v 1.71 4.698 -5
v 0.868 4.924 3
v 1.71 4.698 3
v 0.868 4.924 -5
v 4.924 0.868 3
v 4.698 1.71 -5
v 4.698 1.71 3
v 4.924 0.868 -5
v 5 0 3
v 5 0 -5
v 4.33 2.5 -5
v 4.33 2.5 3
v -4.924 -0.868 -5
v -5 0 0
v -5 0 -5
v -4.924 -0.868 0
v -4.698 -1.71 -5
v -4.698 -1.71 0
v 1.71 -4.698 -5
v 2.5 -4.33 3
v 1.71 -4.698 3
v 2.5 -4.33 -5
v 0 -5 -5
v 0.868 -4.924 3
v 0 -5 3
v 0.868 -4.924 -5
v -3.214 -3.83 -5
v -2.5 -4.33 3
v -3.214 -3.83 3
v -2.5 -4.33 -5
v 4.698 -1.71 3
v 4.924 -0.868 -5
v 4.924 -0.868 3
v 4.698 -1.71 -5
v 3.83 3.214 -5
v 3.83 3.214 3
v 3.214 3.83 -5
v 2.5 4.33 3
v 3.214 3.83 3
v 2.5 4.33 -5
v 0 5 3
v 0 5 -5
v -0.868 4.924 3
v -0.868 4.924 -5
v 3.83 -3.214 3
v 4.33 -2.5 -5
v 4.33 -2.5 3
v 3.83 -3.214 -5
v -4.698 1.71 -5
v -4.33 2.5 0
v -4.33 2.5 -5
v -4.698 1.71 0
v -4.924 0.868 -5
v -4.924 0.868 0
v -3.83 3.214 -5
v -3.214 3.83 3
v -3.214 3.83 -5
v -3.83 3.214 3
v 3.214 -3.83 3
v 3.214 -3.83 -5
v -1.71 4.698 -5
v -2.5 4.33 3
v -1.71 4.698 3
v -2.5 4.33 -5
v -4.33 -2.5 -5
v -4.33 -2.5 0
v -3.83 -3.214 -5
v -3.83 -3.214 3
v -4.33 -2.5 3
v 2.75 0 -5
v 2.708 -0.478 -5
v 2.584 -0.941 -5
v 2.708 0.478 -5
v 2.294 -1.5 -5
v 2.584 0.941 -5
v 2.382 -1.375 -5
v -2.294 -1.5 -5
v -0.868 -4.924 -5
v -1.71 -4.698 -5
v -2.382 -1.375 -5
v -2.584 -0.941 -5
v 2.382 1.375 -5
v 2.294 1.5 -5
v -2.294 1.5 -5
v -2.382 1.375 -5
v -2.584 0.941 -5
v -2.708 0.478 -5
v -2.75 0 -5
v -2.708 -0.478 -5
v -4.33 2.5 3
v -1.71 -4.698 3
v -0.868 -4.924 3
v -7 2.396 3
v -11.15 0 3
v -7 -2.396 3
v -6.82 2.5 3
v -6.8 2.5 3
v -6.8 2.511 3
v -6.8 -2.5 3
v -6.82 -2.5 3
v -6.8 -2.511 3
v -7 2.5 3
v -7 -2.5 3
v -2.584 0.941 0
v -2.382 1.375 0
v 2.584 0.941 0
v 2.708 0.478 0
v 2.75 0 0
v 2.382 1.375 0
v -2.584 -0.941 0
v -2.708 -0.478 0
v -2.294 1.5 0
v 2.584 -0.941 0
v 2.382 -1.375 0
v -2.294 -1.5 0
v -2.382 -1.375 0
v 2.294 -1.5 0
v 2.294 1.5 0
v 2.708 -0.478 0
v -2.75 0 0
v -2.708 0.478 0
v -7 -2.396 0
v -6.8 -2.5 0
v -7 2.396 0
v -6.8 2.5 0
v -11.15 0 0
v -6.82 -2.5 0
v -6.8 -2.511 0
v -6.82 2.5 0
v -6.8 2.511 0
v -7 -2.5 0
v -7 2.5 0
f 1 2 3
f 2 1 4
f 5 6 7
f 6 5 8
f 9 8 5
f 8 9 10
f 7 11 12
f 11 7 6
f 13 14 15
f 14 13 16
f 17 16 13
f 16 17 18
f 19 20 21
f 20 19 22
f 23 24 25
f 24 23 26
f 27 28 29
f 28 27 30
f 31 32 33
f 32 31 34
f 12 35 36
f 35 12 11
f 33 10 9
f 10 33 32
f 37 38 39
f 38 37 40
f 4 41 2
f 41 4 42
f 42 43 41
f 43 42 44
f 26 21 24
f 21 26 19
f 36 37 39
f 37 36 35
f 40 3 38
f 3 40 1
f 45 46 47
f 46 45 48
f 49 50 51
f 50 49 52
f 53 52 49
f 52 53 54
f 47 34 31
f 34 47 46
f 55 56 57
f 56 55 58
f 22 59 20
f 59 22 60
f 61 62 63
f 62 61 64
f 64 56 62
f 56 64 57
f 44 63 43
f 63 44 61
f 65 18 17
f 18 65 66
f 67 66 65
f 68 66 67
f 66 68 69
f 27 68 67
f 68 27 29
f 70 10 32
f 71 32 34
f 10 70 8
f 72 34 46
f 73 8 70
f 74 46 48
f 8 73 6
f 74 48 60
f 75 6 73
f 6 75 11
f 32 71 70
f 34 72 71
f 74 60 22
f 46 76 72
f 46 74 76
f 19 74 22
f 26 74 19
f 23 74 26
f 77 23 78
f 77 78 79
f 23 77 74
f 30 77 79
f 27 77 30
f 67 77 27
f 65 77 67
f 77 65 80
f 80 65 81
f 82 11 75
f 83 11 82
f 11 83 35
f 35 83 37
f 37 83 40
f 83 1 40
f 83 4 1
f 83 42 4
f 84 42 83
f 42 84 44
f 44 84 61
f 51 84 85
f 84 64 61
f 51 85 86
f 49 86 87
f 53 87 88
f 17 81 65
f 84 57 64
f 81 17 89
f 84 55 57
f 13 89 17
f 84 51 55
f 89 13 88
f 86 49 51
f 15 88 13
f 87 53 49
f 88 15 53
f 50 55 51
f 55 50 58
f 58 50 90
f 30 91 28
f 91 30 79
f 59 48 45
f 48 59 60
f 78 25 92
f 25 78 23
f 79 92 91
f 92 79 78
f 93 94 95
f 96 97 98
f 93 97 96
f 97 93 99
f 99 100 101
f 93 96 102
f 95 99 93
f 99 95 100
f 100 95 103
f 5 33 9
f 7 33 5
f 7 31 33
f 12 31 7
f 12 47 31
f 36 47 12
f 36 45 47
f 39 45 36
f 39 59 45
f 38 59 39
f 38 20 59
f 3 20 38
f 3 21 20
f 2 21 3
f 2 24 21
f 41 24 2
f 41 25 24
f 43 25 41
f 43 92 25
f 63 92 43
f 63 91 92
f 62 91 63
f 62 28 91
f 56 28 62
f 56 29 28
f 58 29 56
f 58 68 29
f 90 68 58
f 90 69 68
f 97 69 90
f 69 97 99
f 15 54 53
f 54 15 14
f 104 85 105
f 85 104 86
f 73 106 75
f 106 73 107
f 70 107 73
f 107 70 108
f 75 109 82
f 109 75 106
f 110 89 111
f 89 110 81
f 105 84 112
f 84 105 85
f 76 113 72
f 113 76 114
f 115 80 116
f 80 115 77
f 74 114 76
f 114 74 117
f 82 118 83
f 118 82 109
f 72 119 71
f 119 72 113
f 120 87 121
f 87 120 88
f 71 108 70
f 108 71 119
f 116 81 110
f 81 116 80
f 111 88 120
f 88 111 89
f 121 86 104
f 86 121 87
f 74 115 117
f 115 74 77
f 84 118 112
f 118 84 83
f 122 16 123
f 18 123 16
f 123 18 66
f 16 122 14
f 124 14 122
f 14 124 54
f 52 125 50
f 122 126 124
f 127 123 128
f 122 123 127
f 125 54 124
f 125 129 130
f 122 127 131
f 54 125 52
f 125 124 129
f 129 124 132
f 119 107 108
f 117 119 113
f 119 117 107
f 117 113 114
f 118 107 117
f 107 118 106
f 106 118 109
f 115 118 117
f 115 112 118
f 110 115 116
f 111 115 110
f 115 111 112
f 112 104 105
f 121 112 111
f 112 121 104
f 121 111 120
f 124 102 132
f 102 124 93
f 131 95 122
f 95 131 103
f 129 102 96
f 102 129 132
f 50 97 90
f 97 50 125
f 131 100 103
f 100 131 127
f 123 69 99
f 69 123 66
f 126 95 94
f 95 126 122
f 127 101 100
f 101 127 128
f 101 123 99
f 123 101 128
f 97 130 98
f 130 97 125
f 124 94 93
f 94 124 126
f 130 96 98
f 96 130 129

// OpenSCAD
$fn=36;

union()
{
    translate([0, 0, -1])
    {
        union()
        {
            difference()
            {
                cylinder(8, 5.0, 5.0, true);
                cylinder(8.1, 2.75, 2.75, true);
            }
            translate([0, -2.5, 0])
            {
                cube([6.0, 2.0, 8.0], true);
            }
            translate([0, 2.5, 0])
            {
                cube([6.0, 2.0, 8.0], true);
            }
        }
    }

    translate([-2, 0, 1.5])
    {
        color("Blue")
        cube([10, 5, 3], true);
    }
    
    translate([-8.25, 0, 1.5])
    {
        scale([1.0, 1.0, 1.0])
        color("Green")
        rotate([0,0,180])
        cylinder(3,2.9,2.9,$fn=3, true);
    }
}
